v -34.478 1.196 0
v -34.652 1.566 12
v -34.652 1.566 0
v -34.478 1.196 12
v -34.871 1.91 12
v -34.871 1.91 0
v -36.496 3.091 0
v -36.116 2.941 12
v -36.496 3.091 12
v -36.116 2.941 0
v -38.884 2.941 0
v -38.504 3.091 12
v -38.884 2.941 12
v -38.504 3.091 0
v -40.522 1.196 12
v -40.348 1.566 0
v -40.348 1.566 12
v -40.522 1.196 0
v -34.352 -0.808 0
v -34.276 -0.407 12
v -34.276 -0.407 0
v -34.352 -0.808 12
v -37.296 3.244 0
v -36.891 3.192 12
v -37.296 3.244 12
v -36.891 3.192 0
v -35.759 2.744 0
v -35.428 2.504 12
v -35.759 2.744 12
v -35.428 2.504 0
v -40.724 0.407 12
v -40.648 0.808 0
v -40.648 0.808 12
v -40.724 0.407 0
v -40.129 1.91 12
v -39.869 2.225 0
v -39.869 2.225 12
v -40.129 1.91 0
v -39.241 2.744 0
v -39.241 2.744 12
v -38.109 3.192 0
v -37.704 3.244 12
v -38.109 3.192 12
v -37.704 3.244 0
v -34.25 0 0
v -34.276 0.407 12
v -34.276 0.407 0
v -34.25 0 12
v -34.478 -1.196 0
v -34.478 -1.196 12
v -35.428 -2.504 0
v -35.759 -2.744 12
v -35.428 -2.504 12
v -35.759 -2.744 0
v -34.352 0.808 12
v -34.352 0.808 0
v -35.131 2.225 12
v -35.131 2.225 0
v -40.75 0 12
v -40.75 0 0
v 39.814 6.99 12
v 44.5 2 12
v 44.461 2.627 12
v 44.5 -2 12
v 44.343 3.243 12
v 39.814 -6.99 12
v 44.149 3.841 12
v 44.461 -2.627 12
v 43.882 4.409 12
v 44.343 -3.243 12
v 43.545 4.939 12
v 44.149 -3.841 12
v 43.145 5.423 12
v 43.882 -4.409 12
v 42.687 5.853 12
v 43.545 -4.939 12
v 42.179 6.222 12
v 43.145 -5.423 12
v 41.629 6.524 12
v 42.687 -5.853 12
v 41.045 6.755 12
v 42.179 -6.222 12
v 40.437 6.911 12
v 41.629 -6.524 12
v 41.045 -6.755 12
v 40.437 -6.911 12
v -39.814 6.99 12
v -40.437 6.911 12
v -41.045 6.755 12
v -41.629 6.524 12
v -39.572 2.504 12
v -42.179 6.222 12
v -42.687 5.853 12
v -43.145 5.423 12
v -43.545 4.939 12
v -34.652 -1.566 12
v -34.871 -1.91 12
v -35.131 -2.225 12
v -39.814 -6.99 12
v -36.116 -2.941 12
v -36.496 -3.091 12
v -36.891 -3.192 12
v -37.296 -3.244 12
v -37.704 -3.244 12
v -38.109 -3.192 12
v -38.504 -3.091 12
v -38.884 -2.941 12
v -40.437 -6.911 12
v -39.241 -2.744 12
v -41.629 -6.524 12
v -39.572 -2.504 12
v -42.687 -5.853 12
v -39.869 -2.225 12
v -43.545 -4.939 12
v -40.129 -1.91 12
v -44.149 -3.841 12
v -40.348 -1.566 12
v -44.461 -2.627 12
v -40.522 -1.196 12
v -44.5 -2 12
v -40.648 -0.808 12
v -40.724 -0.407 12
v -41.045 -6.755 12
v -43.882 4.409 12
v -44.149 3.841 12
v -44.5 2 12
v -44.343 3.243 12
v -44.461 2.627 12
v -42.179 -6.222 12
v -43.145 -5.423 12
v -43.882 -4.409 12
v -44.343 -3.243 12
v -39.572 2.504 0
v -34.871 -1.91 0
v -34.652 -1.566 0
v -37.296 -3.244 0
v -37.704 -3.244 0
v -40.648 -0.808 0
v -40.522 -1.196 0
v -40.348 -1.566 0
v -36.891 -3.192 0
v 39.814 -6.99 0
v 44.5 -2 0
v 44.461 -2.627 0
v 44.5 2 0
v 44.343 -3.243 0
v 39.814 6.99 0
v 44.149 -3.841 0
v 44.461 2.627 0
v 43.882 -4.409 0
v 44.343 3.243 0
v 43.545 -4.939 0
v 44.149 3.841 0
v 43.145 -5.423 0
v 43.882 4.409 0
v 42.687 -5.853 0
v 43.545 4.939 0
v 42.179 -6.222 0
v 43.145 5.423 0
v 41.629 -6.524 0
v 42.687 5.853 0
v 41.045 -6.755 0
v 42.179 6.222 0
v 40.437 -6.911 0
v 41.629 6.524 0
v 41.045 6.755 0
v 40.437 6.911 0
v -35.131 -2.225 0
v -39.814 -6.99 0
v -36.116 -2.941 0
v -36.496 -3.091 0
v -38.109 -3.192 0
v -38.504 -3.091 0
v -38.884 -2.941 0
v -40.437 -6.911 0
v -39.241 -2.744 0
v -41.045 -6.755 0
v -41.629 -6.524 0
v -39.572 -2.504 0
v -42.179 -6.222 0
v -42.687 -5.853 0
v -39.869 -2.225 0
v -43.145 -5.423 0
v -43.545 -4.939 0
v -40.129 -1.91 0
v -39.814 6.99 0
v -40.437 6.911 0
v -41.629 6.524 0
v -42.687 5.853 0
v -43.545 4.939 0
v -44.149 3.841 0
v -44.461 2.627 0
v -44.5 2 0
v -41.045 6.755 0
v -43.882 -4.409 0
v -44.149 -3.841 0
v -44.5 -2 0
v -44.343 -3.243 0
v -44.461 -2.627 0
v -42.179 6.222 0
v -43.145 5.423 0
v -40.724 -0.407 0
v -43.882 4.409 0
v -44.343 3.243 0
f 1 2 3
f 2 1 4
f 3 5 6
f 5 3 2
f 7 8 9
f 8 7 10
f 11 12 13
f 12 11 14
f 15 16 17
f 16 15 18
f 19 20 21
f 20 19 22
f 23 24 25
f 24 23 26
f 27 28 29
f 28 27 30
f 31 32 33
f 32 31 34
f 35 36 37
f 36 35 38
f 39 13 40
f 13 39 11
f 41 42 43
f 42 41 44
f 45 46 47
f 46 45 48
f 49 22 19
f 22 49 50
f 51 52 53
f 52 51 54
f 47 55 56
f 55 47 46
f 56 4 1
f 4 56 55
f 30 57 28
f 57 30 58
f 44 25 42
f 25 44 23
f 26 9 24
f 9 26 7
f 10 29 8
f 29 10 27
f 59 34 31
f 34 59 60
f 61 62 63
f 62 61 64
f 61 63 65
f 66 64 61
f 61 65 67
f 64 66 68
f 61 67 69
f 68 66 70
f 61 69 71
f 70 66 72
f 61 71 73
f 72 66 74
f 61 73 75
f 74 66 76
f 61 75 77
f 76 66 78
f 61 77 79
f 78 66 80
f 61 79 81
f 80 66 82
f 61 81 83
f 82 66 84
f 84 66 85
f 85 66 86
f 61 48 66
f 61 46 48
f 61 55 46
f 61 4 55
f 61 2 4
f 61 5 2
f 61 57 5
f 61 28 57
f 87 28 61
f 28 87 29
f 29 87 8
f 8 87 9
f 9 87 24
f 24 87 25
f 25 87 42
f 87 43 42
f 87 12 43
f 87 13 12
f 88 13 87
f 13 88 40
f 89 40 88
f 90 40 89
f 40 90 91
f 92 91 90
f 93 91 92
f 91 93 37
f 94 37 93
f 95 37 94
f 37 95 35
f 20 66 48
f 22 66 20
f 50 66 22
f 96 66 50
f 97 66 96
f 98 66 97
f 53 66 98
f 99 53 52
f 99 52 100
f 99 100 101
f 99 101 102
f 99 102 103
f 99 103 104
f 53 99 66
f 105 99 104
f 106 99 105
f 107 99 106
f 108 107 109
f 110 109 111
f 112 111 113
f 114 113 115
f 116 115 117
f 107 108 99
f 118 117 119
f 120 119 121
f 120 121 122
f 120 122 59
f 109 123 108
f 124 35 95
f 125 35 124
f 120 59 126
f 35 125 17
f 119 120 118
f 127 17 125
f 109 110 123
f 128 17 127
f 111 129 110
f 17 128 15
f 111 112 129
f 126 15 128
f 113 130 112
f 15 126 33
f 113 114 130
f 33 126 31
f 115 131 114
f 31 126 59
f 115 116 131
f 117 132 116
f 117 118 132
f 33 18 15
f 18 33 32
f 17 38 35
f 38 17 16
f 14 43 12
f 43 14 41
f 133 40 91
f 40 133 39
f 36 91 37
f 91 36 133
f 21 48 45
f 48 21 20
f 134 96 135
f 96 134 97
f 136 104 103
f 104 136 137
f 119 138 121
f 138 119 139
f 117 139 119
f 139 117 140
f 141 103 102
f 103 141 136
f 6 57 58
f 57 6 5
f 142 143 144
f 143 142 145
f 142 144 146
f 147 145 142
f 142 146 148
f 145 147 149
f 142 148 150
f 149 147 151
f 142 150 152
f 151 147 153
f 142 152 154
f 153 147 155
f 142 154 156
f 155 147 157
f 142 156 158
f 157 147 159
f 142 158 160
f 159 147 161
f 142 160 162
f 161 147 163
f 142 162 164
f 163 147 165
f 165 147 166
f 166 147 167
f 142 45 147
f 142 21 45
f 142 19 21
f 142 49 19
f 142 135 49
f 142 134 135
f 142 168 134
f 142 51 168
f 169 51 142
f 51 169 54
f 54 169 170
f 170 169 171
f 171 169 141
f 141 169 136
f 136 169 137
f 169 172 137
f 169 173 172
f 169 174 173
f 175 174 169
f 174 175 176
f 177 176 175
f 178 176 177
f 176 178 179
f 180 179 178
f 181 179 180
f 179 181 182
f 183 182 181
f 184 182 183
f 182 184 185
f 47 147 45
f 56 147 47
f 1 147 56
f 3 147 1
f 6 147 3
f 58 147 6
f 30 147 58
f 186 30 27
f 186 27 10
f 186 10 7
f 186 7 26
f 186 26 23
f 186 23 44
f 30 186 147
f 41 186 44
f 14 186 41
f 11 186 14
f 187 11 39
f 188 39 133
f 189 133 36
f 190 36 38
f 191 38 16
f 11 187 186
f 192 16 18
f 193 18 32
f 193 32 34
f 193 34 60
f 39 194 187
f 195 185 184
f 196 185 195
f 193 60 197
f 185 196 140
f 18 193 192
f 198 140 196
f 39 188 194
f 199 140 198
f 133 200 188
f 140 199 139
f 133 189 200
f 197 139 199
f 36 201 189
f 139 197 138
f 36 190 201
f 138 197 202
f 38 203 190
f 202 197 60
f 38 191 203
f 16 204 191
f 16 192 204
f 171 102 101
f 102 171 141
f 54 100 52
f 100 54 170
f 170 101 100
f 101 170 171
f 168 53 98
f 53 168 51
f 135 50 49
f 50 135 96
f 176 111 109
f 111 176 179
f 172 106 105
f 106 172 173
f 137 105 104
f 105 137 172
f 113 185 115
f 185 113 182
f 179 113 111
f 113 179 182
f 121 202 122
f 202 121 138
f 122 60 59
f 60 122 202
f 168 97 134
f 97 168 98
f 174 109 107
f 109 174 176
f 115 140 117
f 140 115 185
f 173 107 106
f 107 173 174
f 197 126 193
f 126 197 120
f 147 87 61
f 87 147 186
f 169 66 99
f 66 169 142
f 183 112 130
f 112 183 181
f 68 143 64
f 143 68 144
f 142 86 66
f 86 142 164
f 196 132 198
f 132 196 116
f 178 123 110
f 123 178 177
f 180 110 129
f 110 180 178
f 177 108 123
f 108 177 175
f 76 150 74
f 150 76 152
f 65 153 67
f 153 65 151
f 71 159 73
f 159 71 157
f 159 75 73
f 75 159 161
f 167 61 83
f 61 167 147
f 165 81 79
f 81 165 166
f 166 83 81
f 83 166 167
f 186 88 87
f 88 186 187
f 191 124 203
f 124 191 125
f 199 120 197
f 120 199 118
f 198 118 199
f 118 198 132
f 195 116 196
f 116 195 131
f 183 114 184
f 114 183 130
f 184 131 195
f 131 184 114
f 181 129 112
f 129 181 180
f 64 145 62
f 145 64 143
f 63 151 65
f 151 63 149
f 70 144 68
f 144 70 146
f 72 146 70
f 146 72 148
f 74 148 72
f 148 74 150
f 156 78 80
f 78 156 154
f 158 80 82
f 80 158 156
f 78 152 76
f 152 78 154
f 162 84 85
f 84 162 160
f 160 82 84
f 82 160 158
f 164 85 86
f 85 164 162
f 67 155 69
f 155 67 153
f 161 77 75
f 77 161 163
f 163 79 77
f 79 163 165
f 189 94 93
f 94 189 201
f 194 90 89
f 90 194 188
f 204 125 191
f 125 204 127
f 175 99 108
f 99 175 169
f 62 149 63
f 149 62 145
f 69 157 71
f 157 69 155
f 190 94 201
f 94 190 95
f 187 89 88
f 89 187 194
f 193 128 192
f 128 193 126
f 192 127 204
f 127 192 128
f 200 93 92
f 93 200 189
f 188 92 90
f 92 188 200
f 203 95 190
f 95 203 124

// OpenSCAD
$fn = 50;


difference() {
	union() {
		hull() {
			translate(v = [-39.5000000000, 2.0000000000, 0]) {
				cylinder(h = 12, r = 5);
			}
			translate(v = [39.5000000000, 2.0000000000, 0]) {
				cylinder(h = 12, r = 5);
			}
			translate(v = [-39.5000000000, -2.0000000000, 0]) {
				cylinder(h = 12, r = 5);
			}
			translate(v = [39.5000000000, -2.0000000000, 0]) {
				cylinder(h = 12, r = 5);
			}
		}
	}
	union() {
		translate(v = [-37.5000000000, 0.0000000000, 0]) {
			cylinder(h = 12, r = 3.2500000000);
		}
		translate(v = [-37.5000000000, 0.0000000000, 0]) {
			cylinder(h = 12, r = 1.8000000000);
		}
		translate(v = [-37.5000000000, 0.0000000000, 0]) {
			cylinder(h = 12, r = 1.8000000000);
		}
		translate(v = [-37.5000000000, 0.0000000000, 0]) {
			cylinder(h = 12, r = 1.8000000000);
		}
	}
}
